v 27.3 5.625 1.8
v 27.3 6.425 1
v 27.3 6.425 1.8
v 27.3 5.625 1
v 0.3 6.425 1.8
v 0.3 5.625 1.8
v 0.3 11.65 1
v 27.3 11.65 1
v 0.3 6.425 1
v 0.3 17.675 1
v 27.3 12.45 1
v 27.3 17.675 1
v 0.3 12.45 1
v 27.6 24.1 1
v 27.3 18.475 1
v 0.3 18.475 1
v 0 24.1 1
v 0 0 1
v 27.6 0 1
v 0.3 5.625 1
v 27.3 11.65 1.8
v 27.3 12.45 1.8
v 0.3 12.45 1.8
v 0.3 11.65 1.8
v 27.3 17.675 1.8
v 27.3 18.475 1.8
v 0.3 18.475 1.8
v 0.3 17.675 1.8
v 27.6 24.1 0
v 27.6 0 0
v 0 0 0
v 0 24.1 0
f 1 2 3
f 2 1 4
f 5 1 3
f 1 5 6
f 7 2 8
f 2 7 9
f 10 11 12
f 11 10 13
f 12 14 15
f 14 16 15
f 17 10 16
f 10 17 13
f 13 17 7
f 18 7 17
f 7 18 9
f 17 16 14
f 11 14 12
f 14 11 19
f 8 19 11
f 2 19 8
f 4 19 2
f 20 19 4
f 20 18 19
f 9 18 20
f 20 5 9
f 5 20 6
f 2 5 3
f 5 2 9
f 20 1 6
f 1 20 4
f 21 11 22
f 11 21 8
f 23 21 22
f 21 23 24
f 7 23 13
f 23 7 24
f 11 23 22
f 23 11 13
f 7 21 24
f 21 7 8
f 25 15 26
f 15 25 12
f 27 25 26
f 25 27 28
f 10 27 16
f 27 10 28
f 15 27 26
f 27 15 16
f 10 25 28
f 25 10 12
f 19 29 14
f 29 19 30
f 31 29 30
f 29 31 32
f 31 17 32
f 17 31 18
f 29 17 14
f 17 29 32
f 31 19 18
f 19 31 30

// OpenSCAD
/*
 * PROMPT: H0 scale (1:87) single-car garage door panel, 27.6 mm wide x 24.1 mm tall x 1 mm thick, with 3 raised horizontal rails dividing the door into 4 equal sections, each rail 0.8 mm tall protruding 0.8 mm above the exterior face.
 */

$fn = 32;

panel_t  = 1.0;
rail_h   = 0.8;
rail_proud = 0.8;

gd_w = 27.6;
gd_h = 24.1;

sections = 4;

module garage_door() {
    // Base panel
    cube([gd_w, gd_h, panel_t]);

    // 3 raised horizontal rails at section boundaries (i = 1, 2, 3)
    for (i = [1 : sections - 1]) {
        y = i * gd_h / sections;
        translate([0.3, y - rail_h / 2, 1])
            cube([gd_w - 0.6, rail_proud, rail_h]);
    }
}

garage_door();
